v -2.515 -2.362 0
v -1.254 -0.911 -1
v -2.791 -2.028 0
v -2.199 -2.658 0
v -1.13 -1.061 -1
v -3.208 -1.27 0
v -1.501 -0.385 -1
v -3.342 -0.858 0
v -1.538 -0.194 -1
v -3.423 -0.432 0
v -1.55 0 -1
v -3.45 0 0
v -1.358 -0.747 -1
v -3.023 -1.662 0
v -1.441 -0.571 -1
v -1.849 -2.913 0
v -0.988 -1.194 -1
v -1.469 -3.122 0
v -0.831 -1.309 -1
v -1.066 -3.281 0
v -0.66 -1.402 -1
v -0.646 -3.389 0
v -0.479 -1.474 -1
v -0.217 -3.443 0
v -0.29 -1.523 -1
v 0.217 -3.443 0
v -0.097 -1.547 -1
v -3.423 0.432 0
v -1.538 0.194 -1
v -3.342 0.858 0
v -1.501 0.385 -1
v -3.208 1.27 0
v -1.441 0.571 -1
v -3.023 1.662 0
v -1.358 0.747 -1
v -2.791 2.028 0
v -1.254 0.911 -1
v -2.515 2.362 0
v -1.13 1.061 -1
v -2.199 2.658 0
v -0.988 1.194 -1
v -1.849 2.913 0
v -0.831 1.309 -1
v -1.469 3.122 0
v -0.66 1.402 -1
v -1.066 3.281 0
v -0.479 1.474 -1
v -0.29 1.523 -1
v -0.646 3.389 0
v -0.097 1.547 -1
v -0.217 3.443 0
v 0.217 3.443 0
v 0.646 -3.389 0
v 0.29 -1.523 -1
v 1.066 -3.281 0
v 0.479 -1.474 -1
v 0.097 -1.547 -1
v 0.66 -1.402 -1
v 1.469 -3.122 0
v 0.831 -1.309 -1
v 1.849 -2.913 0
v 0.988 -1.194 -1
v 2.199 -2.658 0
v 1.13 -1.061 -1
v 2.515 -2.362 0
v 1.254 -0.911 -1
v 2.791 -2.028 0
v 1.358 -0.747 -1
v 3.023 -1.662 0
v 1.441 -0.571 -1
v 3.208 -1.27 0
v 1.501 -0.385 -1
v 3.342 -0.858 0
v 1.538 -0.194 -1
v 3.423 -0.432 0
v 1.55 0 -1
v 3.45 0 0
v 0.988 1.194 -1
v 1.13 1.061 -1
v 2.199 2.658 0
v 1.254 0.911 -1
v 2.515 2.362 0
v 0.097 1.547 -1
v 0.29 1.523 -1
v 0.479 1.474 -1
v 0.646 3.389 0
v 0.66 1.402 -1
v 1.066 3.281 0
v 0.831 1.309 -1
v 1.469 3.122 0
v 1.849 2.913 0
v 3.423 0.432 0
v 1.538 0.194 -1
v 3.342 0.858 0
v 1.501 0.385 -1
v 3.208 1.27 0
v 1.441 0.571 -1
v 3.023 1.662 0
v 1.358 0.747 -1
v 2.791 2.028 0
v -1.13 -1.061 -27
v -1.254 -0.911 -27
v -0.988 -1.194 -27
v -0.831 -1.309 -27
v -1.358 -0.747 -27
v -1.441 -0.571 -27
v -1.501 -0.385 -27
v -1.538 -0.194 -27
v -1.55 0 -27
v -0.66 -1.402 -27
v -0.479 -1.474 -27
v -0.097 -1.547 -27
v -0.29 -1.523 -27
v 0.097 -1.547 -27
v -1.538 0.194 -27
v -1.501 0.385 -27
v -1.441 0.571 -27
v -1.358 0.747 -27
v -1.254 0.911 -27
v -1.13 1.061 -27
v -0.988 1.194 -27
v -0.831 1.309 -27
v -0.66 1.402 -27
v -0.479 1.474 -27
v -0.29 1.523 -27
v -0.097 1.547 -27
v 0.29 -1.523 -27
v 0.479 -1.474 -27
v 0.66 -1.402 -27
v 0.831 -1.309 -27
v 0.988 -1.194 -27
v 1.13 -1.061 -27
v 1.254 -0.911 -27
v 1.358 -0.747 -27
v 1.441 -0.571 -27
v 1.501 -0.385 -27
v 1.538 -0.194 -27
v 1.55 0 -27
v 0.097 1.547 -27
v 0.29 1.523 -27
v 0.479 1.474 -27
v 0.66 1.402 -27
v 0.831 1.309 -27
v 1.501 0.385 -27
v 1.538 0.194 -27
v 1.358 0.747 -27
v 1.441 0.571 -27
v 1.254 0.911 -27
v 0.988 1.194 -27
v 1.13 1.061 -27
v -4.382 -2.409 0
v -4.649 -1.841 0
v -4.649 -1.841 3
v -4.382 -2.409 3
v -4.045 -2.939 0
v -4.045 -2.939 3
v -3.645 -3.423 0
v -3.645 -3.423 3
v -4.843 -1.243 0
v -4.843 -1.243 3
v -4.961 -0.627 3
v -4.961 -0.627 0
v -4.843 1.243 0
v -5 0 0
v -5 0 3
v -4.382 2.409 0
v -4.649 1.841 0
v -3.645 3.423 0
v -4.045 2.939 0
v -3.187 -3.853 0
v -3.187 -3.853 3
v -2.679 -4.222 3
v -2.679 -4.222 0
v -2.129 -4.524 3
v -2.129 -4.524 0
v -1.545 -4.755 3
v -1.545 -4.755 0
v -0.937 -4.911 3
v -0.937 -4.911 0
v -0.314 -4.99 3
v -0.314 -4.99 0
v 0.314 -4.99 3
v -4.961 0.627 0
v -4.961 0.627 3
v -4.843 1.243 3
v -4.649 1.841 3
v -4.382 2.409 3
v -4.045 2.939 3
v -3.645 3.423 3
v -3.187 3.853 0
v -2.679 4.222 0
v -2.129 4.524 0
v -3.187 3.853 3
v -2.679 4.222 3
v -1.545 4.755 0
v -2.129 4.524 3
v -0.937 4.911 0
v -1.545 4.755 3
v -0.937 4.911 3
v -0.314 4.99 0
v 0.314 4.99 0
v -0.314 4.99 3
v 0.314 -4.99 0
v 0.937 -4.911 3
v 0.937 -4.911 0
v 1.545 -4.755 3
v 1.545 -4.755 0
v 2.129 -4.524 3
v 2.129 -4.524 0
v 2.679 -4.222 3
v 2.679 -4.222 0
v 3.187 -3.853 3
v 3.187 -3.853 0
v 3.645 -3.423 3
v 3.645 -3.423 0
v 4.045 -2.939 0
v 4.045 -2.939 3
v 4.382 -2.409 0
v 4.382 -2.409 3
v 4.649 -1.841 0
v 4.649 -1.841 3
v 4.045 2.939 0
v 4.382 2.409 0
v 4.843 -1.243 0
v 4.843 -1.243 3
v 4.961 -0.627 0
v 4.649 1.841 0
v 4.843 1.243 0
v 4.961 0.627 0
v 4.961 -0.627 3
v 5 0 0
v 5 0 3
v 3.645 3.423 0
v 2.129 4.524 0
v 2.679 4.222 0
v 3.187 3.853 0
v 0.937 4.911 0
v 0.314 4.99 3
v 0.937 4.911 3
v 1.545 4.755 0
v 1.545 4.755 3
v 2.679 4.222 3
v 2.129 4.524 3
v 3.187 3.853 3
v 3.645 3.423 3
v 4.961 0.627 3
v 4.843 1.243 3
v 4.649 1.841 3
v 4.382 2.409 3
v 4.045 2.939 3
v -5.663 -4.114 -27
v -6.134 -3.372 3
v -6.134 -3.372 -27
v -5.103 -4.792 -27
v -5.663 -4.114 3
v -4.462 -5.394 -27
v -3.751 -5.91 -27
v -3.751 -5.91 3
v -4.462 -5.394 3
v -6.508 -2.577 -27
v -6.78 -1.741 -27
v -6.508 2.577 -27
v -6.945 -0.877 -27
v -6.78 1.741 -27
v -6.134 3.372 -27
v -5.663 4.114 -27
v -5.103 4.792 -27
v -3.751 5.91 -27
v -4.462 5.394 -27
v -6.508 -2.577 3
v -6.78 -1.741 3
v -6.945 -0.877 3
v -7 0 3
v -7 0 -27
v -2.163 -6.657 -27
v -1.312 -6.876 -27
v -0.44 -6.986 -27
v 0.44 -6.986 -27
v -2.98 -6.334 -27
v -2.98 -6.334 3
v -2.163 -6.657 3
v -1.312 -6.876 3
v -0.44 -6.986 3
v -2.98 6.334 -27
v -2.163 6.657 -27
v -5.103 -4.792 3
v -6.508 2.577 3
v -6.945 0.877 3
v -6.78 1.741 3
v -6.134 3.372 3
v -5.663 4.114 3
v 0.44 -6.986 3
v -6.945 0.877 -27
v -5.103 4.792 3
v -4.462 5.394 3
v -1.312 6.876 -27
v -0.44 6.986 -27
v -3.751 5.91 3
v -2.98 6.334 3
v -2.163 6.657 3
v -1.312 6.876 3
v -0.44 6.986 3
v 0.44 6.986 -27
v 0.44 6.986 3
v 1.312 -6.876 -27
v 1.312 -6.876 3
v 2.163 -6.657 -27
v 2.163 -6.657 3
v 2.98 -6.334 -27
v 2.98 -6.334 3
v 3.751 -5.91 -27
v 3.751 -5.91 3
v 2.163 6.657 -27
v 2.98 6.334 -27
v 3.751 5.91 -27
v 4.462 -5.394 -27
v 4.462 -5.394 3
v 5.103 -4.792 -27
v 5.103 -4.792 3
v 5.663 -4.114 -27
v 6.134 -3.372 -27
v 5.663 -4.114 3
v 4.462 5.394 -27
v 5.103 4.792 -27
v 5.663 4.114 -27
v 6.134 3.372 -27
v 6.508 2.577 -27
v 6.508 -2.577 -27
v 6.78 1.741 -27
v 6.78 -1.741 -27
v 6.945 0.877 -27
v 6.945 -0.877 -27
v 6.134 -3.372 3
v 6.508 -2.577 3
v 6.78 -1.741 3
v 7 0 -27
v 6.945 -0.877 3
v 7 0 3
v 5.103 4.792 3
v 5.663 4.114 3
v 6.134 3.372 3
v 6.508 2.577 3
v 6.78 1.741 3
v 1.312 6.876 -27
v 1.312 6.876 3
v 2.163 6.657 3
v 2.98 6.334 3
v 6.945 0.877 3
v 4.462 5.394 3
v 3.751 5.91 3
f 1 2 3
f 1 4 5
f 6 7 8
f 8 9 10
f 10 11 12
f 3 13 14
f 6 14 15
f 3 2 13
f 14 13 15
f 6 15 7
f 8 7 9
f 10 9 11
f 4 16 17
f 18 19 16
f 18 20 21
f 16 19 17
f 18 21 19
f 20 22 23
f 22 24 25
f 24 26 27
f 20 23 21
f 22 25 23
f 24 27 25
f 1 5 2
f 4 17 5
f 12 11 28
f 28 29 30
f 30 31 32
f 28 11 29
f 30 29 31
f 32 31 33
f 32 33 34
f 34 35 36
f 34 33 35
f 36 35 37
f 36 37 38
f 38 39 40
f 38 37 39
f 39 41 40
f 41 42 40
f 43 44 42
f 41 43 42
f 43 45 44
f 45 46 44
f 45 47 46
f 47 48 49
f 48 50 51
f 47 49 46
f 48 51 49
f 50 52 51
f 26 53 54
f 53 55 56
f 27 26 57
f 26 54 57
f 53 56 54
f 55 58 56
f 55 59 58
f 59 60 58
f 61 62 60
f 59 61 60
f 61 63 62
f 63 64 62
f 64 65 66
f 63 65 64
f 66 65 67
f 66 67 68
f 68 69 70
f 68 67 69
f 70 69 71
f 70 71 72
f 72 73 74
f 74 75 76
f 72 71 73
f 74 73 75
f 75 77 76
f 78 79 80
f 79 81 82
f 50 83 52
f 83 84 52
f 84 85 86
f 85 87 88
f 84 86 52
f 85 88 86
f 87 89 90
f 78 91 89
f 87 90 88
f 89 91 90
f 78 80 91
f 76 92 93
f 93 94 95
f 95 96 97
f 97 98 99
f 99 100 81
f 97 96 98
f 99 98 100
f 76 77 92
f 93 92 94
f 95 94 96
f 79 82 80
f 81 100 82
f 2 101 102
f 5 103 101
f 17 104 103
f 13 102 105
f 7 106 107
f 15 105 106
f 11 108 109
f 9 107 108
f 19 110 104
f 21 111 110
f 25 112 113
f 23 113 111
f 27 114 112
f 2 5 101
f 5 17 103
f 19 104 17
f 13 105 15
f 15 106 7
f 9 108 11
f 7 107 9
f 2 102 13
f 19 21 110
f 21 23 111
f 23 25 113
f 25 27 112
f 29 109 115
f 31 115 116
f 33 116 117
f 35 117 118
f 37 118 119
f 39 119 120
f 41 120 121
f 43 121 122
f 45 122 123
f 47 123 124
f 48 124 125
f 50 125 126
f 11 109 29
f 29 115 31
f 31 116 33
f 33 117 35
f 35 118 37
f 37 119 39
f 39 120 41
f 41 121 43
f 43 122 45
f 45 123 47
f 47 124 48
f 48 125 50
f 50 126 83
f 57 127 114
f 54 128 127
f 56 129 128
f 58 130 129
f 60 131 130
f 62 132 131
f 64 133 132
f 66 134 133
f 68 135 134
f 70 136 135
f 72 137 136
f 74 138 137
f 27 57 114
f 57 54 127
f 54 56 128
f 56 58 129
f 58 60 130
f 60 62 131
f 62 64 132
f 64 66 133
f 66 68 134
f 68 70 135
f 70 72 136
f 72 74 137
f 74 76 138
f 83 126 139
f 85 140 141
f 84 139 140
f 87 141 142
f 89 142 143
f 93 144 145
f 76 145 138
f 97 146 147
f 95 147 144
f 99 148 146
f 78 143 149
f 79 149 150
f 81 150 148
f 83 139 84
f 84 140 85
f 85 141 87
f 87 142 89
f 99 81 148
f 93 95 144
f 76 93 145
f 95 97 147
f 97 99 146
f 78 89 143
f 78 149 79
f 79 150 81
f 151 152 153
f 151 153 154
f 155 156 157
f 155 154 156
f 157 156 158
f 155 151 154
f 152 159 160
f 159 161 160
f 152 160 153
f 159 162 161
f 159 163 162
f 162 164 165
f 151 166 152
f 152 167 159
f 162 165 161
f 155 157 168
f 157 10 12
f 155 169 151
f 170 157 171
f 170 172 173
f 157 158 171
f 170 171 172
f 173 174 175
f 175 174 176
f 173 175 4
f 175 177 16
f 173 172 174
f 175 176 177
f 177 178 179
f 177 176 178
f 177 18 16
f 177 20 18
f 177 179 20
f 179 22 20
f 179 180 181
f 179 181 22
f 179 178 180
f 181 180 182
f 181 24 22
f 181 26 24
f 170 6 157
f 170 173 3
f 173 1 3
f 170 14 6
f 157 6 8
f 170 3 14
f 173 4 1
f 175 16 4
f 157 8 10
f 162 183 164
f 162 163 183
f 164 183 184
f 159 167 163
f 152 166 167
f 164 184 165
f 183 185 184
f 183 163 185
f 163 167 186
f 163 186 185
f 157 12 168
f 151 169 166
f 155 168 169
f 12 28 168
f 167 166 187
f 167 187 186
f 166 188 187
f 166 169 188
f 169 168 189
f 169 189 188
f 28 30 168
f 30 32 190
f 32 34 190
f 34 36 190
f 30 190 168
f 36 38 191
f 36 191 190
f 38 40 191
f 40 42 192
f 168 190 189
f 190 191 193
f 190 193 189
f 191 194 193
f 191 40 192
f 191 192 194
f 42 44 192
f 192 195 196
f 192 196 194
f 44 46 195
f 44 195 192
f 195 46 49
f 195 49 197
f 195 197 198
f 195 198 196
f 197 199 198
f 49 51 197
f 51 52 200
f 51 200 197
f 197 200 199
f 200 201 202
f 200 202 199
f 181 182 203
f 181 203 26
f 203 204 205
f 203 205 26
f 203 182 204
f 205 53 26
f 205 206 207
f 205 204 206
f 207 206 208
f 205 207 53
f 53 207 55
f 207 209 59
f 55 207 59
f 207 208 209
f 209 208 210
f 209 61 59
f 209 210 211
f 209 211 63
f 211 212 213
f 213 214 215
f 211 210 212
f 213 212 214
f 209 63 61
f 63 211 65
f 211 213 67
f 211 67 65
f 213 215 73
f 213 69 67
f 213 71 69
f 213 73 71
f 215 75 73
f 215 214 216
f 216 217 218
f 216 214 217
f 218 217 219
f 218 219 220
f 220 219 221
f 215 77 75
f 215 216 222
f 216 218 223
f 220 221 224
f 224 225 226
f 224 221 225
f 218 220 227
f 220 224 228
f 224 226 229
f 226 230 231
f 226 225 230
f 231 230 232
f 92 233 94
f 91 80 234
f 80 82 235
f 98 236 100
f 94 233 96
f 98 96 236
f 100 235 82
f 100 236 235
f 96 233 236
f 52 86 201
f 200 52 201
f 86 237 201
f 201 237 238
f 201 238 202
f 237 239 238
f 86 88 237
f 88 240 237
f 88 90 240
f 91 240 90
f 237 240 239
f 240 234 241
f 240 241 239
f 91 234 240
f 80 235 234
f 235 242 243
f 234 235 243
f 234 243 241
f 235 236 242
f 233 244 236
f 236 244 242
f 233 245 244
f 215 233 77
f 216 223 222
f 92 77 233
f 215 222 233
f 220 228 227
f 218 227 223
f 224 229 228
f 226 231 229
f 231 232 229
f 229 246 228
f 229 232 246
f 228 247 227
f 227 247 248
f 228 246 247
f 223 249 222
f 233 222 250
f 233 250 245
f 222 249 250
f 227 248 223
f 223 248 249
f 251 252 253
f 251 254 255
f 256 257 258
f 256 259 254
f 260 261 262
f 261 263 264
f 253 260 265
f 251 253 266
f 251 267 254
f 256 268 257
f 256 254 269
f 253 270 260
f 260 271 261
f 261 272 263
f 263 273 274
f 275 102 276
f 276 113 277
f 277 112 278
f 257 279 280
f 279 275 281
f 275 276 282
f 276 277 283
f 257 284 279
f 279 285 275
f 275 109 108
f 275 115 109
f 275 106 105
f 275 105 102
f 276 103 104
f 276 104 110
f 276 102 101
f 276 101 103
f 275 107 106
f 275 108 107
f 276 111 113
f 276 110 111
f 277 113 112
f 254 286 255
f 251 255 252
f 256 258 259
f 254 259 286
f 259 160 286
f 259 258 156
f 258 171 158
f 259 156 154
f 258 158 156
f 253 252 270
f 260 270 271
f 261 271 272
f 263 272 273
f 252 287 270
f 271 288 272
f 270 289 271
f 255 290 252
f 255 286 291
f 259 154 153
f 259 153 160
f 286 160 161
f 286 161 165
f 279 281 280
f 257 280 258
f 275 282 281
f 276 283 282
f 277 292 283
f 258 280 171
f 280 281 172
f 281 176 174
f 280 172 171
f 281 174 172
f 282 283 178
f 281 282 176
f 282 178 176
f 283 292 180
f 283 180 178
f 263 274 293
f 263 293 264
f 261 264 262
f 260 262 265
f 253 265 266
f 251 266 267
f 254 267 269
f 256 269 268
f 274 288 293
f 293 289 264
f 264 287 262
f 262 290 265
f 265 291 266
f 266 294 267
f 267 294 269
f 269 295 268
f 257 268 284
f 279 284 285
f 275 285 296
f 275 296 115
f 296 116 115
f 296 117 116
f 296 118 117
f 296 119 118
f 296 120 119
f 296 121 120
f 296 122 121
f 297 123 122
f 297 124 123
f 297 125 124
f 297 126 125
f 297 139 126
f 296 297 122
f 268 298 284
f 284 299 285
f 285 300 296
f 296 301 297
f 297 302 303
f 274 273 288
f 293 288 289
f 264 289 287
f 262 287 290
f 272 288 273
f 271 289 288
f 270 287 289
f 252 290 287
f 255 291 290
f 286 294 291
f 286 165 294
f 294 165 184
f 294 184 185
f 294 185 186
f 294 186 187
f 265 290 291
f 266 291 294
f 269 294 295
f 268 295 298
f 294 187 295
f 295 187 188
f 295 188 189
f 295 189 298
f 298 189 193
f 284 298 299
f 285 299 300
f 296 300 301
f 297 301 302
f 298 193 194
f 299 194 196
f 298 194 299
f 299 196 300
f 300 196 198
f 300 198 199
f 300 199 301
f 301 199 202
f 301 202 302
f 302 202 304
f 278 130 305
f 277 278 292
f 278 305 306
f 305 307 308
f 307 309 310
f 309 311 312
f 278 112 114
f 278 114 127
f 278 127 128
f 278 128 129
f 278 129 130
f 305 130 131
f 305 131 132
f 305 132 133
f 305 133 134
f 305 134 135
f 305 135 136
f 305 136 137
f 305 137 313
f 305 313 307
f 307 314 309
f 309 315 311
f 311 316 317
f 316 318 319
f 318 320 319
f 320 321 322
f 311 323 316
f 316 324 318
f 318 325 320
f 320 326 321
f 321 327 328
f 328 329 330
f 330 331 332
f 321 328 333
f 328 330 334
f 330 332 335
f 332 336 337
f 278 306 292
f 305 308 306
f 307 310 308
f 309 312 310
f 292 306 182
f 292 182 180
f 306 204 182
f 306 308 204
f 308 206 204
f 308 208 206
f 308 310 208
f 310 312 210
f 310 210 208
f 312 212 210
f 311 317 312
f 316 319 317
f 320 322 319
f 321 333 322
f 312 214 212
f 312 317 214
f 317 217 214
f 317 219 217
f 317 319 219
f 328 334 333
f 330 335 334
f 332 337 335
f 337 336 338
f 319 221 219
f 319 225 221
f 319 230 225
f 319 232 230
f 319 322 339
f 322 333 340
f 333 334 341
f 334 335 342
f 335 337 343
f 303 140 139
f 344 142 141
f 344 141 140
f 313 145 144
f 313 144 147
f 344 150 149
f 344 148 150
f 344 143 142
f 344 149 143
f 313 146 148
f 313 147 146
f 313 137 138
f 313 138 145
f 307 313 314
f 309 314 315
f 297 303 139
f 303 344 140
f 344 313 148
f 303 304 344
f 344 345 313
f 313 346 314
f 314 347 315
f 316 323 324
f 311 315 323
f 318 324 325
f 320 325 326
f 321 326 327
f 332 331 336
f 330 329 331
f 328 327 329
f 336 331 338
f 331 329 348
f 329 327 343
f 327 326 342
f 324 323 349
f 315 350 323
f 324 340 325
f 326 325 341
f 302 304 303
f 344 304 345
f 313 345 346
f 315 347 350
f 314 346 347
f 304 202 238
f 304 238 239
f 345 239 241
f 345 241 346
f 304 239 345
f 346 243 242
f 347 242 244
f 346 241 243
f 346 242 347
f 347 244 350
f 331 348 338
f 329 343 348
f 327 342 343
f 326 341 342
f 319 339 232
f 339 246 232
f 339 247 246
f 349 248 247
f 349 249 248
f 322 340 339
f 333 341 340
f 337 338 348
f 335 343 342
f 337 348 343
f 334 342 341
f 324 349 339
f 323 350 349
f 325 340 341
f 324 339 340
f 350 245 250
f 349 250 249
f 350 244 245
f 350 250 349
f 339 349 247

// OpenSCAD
$fn = 50;


difference() {
	union() {
		translate(v = [0, 0, -27.0000000000]) {
			cylinder(h = 30, r = 7.0000000000);
		}
	}
	union() {
		translate(v = [0, 0, 0]) {
			rotate(a = [0, 0, 0]) {
				difference() {
					union() {
						translate(v = [0, 0, -30.0000000000]) {
							cylinder(h = 30, r = 1.2500000000);
						}
						translate(v = [0, 0, -1.0000000000]) {
							cylinder(h = 1.0000000000, r1 = 1.5500000000, r2 = 3.4500000000);
						}
						translate(v = [0, 0, -30.0000000000]) {
							cylinder(h = 30, r = 1.5500000000);
						}
						translate(v = [0, 0, -30.0000000000]) {
							cylinder(h = 30, r = 1.2500000000);
						}
					}
					union();
				}
			}
		}
		#cylinder(h = 3, r = 5.0000000000);
	}
}
